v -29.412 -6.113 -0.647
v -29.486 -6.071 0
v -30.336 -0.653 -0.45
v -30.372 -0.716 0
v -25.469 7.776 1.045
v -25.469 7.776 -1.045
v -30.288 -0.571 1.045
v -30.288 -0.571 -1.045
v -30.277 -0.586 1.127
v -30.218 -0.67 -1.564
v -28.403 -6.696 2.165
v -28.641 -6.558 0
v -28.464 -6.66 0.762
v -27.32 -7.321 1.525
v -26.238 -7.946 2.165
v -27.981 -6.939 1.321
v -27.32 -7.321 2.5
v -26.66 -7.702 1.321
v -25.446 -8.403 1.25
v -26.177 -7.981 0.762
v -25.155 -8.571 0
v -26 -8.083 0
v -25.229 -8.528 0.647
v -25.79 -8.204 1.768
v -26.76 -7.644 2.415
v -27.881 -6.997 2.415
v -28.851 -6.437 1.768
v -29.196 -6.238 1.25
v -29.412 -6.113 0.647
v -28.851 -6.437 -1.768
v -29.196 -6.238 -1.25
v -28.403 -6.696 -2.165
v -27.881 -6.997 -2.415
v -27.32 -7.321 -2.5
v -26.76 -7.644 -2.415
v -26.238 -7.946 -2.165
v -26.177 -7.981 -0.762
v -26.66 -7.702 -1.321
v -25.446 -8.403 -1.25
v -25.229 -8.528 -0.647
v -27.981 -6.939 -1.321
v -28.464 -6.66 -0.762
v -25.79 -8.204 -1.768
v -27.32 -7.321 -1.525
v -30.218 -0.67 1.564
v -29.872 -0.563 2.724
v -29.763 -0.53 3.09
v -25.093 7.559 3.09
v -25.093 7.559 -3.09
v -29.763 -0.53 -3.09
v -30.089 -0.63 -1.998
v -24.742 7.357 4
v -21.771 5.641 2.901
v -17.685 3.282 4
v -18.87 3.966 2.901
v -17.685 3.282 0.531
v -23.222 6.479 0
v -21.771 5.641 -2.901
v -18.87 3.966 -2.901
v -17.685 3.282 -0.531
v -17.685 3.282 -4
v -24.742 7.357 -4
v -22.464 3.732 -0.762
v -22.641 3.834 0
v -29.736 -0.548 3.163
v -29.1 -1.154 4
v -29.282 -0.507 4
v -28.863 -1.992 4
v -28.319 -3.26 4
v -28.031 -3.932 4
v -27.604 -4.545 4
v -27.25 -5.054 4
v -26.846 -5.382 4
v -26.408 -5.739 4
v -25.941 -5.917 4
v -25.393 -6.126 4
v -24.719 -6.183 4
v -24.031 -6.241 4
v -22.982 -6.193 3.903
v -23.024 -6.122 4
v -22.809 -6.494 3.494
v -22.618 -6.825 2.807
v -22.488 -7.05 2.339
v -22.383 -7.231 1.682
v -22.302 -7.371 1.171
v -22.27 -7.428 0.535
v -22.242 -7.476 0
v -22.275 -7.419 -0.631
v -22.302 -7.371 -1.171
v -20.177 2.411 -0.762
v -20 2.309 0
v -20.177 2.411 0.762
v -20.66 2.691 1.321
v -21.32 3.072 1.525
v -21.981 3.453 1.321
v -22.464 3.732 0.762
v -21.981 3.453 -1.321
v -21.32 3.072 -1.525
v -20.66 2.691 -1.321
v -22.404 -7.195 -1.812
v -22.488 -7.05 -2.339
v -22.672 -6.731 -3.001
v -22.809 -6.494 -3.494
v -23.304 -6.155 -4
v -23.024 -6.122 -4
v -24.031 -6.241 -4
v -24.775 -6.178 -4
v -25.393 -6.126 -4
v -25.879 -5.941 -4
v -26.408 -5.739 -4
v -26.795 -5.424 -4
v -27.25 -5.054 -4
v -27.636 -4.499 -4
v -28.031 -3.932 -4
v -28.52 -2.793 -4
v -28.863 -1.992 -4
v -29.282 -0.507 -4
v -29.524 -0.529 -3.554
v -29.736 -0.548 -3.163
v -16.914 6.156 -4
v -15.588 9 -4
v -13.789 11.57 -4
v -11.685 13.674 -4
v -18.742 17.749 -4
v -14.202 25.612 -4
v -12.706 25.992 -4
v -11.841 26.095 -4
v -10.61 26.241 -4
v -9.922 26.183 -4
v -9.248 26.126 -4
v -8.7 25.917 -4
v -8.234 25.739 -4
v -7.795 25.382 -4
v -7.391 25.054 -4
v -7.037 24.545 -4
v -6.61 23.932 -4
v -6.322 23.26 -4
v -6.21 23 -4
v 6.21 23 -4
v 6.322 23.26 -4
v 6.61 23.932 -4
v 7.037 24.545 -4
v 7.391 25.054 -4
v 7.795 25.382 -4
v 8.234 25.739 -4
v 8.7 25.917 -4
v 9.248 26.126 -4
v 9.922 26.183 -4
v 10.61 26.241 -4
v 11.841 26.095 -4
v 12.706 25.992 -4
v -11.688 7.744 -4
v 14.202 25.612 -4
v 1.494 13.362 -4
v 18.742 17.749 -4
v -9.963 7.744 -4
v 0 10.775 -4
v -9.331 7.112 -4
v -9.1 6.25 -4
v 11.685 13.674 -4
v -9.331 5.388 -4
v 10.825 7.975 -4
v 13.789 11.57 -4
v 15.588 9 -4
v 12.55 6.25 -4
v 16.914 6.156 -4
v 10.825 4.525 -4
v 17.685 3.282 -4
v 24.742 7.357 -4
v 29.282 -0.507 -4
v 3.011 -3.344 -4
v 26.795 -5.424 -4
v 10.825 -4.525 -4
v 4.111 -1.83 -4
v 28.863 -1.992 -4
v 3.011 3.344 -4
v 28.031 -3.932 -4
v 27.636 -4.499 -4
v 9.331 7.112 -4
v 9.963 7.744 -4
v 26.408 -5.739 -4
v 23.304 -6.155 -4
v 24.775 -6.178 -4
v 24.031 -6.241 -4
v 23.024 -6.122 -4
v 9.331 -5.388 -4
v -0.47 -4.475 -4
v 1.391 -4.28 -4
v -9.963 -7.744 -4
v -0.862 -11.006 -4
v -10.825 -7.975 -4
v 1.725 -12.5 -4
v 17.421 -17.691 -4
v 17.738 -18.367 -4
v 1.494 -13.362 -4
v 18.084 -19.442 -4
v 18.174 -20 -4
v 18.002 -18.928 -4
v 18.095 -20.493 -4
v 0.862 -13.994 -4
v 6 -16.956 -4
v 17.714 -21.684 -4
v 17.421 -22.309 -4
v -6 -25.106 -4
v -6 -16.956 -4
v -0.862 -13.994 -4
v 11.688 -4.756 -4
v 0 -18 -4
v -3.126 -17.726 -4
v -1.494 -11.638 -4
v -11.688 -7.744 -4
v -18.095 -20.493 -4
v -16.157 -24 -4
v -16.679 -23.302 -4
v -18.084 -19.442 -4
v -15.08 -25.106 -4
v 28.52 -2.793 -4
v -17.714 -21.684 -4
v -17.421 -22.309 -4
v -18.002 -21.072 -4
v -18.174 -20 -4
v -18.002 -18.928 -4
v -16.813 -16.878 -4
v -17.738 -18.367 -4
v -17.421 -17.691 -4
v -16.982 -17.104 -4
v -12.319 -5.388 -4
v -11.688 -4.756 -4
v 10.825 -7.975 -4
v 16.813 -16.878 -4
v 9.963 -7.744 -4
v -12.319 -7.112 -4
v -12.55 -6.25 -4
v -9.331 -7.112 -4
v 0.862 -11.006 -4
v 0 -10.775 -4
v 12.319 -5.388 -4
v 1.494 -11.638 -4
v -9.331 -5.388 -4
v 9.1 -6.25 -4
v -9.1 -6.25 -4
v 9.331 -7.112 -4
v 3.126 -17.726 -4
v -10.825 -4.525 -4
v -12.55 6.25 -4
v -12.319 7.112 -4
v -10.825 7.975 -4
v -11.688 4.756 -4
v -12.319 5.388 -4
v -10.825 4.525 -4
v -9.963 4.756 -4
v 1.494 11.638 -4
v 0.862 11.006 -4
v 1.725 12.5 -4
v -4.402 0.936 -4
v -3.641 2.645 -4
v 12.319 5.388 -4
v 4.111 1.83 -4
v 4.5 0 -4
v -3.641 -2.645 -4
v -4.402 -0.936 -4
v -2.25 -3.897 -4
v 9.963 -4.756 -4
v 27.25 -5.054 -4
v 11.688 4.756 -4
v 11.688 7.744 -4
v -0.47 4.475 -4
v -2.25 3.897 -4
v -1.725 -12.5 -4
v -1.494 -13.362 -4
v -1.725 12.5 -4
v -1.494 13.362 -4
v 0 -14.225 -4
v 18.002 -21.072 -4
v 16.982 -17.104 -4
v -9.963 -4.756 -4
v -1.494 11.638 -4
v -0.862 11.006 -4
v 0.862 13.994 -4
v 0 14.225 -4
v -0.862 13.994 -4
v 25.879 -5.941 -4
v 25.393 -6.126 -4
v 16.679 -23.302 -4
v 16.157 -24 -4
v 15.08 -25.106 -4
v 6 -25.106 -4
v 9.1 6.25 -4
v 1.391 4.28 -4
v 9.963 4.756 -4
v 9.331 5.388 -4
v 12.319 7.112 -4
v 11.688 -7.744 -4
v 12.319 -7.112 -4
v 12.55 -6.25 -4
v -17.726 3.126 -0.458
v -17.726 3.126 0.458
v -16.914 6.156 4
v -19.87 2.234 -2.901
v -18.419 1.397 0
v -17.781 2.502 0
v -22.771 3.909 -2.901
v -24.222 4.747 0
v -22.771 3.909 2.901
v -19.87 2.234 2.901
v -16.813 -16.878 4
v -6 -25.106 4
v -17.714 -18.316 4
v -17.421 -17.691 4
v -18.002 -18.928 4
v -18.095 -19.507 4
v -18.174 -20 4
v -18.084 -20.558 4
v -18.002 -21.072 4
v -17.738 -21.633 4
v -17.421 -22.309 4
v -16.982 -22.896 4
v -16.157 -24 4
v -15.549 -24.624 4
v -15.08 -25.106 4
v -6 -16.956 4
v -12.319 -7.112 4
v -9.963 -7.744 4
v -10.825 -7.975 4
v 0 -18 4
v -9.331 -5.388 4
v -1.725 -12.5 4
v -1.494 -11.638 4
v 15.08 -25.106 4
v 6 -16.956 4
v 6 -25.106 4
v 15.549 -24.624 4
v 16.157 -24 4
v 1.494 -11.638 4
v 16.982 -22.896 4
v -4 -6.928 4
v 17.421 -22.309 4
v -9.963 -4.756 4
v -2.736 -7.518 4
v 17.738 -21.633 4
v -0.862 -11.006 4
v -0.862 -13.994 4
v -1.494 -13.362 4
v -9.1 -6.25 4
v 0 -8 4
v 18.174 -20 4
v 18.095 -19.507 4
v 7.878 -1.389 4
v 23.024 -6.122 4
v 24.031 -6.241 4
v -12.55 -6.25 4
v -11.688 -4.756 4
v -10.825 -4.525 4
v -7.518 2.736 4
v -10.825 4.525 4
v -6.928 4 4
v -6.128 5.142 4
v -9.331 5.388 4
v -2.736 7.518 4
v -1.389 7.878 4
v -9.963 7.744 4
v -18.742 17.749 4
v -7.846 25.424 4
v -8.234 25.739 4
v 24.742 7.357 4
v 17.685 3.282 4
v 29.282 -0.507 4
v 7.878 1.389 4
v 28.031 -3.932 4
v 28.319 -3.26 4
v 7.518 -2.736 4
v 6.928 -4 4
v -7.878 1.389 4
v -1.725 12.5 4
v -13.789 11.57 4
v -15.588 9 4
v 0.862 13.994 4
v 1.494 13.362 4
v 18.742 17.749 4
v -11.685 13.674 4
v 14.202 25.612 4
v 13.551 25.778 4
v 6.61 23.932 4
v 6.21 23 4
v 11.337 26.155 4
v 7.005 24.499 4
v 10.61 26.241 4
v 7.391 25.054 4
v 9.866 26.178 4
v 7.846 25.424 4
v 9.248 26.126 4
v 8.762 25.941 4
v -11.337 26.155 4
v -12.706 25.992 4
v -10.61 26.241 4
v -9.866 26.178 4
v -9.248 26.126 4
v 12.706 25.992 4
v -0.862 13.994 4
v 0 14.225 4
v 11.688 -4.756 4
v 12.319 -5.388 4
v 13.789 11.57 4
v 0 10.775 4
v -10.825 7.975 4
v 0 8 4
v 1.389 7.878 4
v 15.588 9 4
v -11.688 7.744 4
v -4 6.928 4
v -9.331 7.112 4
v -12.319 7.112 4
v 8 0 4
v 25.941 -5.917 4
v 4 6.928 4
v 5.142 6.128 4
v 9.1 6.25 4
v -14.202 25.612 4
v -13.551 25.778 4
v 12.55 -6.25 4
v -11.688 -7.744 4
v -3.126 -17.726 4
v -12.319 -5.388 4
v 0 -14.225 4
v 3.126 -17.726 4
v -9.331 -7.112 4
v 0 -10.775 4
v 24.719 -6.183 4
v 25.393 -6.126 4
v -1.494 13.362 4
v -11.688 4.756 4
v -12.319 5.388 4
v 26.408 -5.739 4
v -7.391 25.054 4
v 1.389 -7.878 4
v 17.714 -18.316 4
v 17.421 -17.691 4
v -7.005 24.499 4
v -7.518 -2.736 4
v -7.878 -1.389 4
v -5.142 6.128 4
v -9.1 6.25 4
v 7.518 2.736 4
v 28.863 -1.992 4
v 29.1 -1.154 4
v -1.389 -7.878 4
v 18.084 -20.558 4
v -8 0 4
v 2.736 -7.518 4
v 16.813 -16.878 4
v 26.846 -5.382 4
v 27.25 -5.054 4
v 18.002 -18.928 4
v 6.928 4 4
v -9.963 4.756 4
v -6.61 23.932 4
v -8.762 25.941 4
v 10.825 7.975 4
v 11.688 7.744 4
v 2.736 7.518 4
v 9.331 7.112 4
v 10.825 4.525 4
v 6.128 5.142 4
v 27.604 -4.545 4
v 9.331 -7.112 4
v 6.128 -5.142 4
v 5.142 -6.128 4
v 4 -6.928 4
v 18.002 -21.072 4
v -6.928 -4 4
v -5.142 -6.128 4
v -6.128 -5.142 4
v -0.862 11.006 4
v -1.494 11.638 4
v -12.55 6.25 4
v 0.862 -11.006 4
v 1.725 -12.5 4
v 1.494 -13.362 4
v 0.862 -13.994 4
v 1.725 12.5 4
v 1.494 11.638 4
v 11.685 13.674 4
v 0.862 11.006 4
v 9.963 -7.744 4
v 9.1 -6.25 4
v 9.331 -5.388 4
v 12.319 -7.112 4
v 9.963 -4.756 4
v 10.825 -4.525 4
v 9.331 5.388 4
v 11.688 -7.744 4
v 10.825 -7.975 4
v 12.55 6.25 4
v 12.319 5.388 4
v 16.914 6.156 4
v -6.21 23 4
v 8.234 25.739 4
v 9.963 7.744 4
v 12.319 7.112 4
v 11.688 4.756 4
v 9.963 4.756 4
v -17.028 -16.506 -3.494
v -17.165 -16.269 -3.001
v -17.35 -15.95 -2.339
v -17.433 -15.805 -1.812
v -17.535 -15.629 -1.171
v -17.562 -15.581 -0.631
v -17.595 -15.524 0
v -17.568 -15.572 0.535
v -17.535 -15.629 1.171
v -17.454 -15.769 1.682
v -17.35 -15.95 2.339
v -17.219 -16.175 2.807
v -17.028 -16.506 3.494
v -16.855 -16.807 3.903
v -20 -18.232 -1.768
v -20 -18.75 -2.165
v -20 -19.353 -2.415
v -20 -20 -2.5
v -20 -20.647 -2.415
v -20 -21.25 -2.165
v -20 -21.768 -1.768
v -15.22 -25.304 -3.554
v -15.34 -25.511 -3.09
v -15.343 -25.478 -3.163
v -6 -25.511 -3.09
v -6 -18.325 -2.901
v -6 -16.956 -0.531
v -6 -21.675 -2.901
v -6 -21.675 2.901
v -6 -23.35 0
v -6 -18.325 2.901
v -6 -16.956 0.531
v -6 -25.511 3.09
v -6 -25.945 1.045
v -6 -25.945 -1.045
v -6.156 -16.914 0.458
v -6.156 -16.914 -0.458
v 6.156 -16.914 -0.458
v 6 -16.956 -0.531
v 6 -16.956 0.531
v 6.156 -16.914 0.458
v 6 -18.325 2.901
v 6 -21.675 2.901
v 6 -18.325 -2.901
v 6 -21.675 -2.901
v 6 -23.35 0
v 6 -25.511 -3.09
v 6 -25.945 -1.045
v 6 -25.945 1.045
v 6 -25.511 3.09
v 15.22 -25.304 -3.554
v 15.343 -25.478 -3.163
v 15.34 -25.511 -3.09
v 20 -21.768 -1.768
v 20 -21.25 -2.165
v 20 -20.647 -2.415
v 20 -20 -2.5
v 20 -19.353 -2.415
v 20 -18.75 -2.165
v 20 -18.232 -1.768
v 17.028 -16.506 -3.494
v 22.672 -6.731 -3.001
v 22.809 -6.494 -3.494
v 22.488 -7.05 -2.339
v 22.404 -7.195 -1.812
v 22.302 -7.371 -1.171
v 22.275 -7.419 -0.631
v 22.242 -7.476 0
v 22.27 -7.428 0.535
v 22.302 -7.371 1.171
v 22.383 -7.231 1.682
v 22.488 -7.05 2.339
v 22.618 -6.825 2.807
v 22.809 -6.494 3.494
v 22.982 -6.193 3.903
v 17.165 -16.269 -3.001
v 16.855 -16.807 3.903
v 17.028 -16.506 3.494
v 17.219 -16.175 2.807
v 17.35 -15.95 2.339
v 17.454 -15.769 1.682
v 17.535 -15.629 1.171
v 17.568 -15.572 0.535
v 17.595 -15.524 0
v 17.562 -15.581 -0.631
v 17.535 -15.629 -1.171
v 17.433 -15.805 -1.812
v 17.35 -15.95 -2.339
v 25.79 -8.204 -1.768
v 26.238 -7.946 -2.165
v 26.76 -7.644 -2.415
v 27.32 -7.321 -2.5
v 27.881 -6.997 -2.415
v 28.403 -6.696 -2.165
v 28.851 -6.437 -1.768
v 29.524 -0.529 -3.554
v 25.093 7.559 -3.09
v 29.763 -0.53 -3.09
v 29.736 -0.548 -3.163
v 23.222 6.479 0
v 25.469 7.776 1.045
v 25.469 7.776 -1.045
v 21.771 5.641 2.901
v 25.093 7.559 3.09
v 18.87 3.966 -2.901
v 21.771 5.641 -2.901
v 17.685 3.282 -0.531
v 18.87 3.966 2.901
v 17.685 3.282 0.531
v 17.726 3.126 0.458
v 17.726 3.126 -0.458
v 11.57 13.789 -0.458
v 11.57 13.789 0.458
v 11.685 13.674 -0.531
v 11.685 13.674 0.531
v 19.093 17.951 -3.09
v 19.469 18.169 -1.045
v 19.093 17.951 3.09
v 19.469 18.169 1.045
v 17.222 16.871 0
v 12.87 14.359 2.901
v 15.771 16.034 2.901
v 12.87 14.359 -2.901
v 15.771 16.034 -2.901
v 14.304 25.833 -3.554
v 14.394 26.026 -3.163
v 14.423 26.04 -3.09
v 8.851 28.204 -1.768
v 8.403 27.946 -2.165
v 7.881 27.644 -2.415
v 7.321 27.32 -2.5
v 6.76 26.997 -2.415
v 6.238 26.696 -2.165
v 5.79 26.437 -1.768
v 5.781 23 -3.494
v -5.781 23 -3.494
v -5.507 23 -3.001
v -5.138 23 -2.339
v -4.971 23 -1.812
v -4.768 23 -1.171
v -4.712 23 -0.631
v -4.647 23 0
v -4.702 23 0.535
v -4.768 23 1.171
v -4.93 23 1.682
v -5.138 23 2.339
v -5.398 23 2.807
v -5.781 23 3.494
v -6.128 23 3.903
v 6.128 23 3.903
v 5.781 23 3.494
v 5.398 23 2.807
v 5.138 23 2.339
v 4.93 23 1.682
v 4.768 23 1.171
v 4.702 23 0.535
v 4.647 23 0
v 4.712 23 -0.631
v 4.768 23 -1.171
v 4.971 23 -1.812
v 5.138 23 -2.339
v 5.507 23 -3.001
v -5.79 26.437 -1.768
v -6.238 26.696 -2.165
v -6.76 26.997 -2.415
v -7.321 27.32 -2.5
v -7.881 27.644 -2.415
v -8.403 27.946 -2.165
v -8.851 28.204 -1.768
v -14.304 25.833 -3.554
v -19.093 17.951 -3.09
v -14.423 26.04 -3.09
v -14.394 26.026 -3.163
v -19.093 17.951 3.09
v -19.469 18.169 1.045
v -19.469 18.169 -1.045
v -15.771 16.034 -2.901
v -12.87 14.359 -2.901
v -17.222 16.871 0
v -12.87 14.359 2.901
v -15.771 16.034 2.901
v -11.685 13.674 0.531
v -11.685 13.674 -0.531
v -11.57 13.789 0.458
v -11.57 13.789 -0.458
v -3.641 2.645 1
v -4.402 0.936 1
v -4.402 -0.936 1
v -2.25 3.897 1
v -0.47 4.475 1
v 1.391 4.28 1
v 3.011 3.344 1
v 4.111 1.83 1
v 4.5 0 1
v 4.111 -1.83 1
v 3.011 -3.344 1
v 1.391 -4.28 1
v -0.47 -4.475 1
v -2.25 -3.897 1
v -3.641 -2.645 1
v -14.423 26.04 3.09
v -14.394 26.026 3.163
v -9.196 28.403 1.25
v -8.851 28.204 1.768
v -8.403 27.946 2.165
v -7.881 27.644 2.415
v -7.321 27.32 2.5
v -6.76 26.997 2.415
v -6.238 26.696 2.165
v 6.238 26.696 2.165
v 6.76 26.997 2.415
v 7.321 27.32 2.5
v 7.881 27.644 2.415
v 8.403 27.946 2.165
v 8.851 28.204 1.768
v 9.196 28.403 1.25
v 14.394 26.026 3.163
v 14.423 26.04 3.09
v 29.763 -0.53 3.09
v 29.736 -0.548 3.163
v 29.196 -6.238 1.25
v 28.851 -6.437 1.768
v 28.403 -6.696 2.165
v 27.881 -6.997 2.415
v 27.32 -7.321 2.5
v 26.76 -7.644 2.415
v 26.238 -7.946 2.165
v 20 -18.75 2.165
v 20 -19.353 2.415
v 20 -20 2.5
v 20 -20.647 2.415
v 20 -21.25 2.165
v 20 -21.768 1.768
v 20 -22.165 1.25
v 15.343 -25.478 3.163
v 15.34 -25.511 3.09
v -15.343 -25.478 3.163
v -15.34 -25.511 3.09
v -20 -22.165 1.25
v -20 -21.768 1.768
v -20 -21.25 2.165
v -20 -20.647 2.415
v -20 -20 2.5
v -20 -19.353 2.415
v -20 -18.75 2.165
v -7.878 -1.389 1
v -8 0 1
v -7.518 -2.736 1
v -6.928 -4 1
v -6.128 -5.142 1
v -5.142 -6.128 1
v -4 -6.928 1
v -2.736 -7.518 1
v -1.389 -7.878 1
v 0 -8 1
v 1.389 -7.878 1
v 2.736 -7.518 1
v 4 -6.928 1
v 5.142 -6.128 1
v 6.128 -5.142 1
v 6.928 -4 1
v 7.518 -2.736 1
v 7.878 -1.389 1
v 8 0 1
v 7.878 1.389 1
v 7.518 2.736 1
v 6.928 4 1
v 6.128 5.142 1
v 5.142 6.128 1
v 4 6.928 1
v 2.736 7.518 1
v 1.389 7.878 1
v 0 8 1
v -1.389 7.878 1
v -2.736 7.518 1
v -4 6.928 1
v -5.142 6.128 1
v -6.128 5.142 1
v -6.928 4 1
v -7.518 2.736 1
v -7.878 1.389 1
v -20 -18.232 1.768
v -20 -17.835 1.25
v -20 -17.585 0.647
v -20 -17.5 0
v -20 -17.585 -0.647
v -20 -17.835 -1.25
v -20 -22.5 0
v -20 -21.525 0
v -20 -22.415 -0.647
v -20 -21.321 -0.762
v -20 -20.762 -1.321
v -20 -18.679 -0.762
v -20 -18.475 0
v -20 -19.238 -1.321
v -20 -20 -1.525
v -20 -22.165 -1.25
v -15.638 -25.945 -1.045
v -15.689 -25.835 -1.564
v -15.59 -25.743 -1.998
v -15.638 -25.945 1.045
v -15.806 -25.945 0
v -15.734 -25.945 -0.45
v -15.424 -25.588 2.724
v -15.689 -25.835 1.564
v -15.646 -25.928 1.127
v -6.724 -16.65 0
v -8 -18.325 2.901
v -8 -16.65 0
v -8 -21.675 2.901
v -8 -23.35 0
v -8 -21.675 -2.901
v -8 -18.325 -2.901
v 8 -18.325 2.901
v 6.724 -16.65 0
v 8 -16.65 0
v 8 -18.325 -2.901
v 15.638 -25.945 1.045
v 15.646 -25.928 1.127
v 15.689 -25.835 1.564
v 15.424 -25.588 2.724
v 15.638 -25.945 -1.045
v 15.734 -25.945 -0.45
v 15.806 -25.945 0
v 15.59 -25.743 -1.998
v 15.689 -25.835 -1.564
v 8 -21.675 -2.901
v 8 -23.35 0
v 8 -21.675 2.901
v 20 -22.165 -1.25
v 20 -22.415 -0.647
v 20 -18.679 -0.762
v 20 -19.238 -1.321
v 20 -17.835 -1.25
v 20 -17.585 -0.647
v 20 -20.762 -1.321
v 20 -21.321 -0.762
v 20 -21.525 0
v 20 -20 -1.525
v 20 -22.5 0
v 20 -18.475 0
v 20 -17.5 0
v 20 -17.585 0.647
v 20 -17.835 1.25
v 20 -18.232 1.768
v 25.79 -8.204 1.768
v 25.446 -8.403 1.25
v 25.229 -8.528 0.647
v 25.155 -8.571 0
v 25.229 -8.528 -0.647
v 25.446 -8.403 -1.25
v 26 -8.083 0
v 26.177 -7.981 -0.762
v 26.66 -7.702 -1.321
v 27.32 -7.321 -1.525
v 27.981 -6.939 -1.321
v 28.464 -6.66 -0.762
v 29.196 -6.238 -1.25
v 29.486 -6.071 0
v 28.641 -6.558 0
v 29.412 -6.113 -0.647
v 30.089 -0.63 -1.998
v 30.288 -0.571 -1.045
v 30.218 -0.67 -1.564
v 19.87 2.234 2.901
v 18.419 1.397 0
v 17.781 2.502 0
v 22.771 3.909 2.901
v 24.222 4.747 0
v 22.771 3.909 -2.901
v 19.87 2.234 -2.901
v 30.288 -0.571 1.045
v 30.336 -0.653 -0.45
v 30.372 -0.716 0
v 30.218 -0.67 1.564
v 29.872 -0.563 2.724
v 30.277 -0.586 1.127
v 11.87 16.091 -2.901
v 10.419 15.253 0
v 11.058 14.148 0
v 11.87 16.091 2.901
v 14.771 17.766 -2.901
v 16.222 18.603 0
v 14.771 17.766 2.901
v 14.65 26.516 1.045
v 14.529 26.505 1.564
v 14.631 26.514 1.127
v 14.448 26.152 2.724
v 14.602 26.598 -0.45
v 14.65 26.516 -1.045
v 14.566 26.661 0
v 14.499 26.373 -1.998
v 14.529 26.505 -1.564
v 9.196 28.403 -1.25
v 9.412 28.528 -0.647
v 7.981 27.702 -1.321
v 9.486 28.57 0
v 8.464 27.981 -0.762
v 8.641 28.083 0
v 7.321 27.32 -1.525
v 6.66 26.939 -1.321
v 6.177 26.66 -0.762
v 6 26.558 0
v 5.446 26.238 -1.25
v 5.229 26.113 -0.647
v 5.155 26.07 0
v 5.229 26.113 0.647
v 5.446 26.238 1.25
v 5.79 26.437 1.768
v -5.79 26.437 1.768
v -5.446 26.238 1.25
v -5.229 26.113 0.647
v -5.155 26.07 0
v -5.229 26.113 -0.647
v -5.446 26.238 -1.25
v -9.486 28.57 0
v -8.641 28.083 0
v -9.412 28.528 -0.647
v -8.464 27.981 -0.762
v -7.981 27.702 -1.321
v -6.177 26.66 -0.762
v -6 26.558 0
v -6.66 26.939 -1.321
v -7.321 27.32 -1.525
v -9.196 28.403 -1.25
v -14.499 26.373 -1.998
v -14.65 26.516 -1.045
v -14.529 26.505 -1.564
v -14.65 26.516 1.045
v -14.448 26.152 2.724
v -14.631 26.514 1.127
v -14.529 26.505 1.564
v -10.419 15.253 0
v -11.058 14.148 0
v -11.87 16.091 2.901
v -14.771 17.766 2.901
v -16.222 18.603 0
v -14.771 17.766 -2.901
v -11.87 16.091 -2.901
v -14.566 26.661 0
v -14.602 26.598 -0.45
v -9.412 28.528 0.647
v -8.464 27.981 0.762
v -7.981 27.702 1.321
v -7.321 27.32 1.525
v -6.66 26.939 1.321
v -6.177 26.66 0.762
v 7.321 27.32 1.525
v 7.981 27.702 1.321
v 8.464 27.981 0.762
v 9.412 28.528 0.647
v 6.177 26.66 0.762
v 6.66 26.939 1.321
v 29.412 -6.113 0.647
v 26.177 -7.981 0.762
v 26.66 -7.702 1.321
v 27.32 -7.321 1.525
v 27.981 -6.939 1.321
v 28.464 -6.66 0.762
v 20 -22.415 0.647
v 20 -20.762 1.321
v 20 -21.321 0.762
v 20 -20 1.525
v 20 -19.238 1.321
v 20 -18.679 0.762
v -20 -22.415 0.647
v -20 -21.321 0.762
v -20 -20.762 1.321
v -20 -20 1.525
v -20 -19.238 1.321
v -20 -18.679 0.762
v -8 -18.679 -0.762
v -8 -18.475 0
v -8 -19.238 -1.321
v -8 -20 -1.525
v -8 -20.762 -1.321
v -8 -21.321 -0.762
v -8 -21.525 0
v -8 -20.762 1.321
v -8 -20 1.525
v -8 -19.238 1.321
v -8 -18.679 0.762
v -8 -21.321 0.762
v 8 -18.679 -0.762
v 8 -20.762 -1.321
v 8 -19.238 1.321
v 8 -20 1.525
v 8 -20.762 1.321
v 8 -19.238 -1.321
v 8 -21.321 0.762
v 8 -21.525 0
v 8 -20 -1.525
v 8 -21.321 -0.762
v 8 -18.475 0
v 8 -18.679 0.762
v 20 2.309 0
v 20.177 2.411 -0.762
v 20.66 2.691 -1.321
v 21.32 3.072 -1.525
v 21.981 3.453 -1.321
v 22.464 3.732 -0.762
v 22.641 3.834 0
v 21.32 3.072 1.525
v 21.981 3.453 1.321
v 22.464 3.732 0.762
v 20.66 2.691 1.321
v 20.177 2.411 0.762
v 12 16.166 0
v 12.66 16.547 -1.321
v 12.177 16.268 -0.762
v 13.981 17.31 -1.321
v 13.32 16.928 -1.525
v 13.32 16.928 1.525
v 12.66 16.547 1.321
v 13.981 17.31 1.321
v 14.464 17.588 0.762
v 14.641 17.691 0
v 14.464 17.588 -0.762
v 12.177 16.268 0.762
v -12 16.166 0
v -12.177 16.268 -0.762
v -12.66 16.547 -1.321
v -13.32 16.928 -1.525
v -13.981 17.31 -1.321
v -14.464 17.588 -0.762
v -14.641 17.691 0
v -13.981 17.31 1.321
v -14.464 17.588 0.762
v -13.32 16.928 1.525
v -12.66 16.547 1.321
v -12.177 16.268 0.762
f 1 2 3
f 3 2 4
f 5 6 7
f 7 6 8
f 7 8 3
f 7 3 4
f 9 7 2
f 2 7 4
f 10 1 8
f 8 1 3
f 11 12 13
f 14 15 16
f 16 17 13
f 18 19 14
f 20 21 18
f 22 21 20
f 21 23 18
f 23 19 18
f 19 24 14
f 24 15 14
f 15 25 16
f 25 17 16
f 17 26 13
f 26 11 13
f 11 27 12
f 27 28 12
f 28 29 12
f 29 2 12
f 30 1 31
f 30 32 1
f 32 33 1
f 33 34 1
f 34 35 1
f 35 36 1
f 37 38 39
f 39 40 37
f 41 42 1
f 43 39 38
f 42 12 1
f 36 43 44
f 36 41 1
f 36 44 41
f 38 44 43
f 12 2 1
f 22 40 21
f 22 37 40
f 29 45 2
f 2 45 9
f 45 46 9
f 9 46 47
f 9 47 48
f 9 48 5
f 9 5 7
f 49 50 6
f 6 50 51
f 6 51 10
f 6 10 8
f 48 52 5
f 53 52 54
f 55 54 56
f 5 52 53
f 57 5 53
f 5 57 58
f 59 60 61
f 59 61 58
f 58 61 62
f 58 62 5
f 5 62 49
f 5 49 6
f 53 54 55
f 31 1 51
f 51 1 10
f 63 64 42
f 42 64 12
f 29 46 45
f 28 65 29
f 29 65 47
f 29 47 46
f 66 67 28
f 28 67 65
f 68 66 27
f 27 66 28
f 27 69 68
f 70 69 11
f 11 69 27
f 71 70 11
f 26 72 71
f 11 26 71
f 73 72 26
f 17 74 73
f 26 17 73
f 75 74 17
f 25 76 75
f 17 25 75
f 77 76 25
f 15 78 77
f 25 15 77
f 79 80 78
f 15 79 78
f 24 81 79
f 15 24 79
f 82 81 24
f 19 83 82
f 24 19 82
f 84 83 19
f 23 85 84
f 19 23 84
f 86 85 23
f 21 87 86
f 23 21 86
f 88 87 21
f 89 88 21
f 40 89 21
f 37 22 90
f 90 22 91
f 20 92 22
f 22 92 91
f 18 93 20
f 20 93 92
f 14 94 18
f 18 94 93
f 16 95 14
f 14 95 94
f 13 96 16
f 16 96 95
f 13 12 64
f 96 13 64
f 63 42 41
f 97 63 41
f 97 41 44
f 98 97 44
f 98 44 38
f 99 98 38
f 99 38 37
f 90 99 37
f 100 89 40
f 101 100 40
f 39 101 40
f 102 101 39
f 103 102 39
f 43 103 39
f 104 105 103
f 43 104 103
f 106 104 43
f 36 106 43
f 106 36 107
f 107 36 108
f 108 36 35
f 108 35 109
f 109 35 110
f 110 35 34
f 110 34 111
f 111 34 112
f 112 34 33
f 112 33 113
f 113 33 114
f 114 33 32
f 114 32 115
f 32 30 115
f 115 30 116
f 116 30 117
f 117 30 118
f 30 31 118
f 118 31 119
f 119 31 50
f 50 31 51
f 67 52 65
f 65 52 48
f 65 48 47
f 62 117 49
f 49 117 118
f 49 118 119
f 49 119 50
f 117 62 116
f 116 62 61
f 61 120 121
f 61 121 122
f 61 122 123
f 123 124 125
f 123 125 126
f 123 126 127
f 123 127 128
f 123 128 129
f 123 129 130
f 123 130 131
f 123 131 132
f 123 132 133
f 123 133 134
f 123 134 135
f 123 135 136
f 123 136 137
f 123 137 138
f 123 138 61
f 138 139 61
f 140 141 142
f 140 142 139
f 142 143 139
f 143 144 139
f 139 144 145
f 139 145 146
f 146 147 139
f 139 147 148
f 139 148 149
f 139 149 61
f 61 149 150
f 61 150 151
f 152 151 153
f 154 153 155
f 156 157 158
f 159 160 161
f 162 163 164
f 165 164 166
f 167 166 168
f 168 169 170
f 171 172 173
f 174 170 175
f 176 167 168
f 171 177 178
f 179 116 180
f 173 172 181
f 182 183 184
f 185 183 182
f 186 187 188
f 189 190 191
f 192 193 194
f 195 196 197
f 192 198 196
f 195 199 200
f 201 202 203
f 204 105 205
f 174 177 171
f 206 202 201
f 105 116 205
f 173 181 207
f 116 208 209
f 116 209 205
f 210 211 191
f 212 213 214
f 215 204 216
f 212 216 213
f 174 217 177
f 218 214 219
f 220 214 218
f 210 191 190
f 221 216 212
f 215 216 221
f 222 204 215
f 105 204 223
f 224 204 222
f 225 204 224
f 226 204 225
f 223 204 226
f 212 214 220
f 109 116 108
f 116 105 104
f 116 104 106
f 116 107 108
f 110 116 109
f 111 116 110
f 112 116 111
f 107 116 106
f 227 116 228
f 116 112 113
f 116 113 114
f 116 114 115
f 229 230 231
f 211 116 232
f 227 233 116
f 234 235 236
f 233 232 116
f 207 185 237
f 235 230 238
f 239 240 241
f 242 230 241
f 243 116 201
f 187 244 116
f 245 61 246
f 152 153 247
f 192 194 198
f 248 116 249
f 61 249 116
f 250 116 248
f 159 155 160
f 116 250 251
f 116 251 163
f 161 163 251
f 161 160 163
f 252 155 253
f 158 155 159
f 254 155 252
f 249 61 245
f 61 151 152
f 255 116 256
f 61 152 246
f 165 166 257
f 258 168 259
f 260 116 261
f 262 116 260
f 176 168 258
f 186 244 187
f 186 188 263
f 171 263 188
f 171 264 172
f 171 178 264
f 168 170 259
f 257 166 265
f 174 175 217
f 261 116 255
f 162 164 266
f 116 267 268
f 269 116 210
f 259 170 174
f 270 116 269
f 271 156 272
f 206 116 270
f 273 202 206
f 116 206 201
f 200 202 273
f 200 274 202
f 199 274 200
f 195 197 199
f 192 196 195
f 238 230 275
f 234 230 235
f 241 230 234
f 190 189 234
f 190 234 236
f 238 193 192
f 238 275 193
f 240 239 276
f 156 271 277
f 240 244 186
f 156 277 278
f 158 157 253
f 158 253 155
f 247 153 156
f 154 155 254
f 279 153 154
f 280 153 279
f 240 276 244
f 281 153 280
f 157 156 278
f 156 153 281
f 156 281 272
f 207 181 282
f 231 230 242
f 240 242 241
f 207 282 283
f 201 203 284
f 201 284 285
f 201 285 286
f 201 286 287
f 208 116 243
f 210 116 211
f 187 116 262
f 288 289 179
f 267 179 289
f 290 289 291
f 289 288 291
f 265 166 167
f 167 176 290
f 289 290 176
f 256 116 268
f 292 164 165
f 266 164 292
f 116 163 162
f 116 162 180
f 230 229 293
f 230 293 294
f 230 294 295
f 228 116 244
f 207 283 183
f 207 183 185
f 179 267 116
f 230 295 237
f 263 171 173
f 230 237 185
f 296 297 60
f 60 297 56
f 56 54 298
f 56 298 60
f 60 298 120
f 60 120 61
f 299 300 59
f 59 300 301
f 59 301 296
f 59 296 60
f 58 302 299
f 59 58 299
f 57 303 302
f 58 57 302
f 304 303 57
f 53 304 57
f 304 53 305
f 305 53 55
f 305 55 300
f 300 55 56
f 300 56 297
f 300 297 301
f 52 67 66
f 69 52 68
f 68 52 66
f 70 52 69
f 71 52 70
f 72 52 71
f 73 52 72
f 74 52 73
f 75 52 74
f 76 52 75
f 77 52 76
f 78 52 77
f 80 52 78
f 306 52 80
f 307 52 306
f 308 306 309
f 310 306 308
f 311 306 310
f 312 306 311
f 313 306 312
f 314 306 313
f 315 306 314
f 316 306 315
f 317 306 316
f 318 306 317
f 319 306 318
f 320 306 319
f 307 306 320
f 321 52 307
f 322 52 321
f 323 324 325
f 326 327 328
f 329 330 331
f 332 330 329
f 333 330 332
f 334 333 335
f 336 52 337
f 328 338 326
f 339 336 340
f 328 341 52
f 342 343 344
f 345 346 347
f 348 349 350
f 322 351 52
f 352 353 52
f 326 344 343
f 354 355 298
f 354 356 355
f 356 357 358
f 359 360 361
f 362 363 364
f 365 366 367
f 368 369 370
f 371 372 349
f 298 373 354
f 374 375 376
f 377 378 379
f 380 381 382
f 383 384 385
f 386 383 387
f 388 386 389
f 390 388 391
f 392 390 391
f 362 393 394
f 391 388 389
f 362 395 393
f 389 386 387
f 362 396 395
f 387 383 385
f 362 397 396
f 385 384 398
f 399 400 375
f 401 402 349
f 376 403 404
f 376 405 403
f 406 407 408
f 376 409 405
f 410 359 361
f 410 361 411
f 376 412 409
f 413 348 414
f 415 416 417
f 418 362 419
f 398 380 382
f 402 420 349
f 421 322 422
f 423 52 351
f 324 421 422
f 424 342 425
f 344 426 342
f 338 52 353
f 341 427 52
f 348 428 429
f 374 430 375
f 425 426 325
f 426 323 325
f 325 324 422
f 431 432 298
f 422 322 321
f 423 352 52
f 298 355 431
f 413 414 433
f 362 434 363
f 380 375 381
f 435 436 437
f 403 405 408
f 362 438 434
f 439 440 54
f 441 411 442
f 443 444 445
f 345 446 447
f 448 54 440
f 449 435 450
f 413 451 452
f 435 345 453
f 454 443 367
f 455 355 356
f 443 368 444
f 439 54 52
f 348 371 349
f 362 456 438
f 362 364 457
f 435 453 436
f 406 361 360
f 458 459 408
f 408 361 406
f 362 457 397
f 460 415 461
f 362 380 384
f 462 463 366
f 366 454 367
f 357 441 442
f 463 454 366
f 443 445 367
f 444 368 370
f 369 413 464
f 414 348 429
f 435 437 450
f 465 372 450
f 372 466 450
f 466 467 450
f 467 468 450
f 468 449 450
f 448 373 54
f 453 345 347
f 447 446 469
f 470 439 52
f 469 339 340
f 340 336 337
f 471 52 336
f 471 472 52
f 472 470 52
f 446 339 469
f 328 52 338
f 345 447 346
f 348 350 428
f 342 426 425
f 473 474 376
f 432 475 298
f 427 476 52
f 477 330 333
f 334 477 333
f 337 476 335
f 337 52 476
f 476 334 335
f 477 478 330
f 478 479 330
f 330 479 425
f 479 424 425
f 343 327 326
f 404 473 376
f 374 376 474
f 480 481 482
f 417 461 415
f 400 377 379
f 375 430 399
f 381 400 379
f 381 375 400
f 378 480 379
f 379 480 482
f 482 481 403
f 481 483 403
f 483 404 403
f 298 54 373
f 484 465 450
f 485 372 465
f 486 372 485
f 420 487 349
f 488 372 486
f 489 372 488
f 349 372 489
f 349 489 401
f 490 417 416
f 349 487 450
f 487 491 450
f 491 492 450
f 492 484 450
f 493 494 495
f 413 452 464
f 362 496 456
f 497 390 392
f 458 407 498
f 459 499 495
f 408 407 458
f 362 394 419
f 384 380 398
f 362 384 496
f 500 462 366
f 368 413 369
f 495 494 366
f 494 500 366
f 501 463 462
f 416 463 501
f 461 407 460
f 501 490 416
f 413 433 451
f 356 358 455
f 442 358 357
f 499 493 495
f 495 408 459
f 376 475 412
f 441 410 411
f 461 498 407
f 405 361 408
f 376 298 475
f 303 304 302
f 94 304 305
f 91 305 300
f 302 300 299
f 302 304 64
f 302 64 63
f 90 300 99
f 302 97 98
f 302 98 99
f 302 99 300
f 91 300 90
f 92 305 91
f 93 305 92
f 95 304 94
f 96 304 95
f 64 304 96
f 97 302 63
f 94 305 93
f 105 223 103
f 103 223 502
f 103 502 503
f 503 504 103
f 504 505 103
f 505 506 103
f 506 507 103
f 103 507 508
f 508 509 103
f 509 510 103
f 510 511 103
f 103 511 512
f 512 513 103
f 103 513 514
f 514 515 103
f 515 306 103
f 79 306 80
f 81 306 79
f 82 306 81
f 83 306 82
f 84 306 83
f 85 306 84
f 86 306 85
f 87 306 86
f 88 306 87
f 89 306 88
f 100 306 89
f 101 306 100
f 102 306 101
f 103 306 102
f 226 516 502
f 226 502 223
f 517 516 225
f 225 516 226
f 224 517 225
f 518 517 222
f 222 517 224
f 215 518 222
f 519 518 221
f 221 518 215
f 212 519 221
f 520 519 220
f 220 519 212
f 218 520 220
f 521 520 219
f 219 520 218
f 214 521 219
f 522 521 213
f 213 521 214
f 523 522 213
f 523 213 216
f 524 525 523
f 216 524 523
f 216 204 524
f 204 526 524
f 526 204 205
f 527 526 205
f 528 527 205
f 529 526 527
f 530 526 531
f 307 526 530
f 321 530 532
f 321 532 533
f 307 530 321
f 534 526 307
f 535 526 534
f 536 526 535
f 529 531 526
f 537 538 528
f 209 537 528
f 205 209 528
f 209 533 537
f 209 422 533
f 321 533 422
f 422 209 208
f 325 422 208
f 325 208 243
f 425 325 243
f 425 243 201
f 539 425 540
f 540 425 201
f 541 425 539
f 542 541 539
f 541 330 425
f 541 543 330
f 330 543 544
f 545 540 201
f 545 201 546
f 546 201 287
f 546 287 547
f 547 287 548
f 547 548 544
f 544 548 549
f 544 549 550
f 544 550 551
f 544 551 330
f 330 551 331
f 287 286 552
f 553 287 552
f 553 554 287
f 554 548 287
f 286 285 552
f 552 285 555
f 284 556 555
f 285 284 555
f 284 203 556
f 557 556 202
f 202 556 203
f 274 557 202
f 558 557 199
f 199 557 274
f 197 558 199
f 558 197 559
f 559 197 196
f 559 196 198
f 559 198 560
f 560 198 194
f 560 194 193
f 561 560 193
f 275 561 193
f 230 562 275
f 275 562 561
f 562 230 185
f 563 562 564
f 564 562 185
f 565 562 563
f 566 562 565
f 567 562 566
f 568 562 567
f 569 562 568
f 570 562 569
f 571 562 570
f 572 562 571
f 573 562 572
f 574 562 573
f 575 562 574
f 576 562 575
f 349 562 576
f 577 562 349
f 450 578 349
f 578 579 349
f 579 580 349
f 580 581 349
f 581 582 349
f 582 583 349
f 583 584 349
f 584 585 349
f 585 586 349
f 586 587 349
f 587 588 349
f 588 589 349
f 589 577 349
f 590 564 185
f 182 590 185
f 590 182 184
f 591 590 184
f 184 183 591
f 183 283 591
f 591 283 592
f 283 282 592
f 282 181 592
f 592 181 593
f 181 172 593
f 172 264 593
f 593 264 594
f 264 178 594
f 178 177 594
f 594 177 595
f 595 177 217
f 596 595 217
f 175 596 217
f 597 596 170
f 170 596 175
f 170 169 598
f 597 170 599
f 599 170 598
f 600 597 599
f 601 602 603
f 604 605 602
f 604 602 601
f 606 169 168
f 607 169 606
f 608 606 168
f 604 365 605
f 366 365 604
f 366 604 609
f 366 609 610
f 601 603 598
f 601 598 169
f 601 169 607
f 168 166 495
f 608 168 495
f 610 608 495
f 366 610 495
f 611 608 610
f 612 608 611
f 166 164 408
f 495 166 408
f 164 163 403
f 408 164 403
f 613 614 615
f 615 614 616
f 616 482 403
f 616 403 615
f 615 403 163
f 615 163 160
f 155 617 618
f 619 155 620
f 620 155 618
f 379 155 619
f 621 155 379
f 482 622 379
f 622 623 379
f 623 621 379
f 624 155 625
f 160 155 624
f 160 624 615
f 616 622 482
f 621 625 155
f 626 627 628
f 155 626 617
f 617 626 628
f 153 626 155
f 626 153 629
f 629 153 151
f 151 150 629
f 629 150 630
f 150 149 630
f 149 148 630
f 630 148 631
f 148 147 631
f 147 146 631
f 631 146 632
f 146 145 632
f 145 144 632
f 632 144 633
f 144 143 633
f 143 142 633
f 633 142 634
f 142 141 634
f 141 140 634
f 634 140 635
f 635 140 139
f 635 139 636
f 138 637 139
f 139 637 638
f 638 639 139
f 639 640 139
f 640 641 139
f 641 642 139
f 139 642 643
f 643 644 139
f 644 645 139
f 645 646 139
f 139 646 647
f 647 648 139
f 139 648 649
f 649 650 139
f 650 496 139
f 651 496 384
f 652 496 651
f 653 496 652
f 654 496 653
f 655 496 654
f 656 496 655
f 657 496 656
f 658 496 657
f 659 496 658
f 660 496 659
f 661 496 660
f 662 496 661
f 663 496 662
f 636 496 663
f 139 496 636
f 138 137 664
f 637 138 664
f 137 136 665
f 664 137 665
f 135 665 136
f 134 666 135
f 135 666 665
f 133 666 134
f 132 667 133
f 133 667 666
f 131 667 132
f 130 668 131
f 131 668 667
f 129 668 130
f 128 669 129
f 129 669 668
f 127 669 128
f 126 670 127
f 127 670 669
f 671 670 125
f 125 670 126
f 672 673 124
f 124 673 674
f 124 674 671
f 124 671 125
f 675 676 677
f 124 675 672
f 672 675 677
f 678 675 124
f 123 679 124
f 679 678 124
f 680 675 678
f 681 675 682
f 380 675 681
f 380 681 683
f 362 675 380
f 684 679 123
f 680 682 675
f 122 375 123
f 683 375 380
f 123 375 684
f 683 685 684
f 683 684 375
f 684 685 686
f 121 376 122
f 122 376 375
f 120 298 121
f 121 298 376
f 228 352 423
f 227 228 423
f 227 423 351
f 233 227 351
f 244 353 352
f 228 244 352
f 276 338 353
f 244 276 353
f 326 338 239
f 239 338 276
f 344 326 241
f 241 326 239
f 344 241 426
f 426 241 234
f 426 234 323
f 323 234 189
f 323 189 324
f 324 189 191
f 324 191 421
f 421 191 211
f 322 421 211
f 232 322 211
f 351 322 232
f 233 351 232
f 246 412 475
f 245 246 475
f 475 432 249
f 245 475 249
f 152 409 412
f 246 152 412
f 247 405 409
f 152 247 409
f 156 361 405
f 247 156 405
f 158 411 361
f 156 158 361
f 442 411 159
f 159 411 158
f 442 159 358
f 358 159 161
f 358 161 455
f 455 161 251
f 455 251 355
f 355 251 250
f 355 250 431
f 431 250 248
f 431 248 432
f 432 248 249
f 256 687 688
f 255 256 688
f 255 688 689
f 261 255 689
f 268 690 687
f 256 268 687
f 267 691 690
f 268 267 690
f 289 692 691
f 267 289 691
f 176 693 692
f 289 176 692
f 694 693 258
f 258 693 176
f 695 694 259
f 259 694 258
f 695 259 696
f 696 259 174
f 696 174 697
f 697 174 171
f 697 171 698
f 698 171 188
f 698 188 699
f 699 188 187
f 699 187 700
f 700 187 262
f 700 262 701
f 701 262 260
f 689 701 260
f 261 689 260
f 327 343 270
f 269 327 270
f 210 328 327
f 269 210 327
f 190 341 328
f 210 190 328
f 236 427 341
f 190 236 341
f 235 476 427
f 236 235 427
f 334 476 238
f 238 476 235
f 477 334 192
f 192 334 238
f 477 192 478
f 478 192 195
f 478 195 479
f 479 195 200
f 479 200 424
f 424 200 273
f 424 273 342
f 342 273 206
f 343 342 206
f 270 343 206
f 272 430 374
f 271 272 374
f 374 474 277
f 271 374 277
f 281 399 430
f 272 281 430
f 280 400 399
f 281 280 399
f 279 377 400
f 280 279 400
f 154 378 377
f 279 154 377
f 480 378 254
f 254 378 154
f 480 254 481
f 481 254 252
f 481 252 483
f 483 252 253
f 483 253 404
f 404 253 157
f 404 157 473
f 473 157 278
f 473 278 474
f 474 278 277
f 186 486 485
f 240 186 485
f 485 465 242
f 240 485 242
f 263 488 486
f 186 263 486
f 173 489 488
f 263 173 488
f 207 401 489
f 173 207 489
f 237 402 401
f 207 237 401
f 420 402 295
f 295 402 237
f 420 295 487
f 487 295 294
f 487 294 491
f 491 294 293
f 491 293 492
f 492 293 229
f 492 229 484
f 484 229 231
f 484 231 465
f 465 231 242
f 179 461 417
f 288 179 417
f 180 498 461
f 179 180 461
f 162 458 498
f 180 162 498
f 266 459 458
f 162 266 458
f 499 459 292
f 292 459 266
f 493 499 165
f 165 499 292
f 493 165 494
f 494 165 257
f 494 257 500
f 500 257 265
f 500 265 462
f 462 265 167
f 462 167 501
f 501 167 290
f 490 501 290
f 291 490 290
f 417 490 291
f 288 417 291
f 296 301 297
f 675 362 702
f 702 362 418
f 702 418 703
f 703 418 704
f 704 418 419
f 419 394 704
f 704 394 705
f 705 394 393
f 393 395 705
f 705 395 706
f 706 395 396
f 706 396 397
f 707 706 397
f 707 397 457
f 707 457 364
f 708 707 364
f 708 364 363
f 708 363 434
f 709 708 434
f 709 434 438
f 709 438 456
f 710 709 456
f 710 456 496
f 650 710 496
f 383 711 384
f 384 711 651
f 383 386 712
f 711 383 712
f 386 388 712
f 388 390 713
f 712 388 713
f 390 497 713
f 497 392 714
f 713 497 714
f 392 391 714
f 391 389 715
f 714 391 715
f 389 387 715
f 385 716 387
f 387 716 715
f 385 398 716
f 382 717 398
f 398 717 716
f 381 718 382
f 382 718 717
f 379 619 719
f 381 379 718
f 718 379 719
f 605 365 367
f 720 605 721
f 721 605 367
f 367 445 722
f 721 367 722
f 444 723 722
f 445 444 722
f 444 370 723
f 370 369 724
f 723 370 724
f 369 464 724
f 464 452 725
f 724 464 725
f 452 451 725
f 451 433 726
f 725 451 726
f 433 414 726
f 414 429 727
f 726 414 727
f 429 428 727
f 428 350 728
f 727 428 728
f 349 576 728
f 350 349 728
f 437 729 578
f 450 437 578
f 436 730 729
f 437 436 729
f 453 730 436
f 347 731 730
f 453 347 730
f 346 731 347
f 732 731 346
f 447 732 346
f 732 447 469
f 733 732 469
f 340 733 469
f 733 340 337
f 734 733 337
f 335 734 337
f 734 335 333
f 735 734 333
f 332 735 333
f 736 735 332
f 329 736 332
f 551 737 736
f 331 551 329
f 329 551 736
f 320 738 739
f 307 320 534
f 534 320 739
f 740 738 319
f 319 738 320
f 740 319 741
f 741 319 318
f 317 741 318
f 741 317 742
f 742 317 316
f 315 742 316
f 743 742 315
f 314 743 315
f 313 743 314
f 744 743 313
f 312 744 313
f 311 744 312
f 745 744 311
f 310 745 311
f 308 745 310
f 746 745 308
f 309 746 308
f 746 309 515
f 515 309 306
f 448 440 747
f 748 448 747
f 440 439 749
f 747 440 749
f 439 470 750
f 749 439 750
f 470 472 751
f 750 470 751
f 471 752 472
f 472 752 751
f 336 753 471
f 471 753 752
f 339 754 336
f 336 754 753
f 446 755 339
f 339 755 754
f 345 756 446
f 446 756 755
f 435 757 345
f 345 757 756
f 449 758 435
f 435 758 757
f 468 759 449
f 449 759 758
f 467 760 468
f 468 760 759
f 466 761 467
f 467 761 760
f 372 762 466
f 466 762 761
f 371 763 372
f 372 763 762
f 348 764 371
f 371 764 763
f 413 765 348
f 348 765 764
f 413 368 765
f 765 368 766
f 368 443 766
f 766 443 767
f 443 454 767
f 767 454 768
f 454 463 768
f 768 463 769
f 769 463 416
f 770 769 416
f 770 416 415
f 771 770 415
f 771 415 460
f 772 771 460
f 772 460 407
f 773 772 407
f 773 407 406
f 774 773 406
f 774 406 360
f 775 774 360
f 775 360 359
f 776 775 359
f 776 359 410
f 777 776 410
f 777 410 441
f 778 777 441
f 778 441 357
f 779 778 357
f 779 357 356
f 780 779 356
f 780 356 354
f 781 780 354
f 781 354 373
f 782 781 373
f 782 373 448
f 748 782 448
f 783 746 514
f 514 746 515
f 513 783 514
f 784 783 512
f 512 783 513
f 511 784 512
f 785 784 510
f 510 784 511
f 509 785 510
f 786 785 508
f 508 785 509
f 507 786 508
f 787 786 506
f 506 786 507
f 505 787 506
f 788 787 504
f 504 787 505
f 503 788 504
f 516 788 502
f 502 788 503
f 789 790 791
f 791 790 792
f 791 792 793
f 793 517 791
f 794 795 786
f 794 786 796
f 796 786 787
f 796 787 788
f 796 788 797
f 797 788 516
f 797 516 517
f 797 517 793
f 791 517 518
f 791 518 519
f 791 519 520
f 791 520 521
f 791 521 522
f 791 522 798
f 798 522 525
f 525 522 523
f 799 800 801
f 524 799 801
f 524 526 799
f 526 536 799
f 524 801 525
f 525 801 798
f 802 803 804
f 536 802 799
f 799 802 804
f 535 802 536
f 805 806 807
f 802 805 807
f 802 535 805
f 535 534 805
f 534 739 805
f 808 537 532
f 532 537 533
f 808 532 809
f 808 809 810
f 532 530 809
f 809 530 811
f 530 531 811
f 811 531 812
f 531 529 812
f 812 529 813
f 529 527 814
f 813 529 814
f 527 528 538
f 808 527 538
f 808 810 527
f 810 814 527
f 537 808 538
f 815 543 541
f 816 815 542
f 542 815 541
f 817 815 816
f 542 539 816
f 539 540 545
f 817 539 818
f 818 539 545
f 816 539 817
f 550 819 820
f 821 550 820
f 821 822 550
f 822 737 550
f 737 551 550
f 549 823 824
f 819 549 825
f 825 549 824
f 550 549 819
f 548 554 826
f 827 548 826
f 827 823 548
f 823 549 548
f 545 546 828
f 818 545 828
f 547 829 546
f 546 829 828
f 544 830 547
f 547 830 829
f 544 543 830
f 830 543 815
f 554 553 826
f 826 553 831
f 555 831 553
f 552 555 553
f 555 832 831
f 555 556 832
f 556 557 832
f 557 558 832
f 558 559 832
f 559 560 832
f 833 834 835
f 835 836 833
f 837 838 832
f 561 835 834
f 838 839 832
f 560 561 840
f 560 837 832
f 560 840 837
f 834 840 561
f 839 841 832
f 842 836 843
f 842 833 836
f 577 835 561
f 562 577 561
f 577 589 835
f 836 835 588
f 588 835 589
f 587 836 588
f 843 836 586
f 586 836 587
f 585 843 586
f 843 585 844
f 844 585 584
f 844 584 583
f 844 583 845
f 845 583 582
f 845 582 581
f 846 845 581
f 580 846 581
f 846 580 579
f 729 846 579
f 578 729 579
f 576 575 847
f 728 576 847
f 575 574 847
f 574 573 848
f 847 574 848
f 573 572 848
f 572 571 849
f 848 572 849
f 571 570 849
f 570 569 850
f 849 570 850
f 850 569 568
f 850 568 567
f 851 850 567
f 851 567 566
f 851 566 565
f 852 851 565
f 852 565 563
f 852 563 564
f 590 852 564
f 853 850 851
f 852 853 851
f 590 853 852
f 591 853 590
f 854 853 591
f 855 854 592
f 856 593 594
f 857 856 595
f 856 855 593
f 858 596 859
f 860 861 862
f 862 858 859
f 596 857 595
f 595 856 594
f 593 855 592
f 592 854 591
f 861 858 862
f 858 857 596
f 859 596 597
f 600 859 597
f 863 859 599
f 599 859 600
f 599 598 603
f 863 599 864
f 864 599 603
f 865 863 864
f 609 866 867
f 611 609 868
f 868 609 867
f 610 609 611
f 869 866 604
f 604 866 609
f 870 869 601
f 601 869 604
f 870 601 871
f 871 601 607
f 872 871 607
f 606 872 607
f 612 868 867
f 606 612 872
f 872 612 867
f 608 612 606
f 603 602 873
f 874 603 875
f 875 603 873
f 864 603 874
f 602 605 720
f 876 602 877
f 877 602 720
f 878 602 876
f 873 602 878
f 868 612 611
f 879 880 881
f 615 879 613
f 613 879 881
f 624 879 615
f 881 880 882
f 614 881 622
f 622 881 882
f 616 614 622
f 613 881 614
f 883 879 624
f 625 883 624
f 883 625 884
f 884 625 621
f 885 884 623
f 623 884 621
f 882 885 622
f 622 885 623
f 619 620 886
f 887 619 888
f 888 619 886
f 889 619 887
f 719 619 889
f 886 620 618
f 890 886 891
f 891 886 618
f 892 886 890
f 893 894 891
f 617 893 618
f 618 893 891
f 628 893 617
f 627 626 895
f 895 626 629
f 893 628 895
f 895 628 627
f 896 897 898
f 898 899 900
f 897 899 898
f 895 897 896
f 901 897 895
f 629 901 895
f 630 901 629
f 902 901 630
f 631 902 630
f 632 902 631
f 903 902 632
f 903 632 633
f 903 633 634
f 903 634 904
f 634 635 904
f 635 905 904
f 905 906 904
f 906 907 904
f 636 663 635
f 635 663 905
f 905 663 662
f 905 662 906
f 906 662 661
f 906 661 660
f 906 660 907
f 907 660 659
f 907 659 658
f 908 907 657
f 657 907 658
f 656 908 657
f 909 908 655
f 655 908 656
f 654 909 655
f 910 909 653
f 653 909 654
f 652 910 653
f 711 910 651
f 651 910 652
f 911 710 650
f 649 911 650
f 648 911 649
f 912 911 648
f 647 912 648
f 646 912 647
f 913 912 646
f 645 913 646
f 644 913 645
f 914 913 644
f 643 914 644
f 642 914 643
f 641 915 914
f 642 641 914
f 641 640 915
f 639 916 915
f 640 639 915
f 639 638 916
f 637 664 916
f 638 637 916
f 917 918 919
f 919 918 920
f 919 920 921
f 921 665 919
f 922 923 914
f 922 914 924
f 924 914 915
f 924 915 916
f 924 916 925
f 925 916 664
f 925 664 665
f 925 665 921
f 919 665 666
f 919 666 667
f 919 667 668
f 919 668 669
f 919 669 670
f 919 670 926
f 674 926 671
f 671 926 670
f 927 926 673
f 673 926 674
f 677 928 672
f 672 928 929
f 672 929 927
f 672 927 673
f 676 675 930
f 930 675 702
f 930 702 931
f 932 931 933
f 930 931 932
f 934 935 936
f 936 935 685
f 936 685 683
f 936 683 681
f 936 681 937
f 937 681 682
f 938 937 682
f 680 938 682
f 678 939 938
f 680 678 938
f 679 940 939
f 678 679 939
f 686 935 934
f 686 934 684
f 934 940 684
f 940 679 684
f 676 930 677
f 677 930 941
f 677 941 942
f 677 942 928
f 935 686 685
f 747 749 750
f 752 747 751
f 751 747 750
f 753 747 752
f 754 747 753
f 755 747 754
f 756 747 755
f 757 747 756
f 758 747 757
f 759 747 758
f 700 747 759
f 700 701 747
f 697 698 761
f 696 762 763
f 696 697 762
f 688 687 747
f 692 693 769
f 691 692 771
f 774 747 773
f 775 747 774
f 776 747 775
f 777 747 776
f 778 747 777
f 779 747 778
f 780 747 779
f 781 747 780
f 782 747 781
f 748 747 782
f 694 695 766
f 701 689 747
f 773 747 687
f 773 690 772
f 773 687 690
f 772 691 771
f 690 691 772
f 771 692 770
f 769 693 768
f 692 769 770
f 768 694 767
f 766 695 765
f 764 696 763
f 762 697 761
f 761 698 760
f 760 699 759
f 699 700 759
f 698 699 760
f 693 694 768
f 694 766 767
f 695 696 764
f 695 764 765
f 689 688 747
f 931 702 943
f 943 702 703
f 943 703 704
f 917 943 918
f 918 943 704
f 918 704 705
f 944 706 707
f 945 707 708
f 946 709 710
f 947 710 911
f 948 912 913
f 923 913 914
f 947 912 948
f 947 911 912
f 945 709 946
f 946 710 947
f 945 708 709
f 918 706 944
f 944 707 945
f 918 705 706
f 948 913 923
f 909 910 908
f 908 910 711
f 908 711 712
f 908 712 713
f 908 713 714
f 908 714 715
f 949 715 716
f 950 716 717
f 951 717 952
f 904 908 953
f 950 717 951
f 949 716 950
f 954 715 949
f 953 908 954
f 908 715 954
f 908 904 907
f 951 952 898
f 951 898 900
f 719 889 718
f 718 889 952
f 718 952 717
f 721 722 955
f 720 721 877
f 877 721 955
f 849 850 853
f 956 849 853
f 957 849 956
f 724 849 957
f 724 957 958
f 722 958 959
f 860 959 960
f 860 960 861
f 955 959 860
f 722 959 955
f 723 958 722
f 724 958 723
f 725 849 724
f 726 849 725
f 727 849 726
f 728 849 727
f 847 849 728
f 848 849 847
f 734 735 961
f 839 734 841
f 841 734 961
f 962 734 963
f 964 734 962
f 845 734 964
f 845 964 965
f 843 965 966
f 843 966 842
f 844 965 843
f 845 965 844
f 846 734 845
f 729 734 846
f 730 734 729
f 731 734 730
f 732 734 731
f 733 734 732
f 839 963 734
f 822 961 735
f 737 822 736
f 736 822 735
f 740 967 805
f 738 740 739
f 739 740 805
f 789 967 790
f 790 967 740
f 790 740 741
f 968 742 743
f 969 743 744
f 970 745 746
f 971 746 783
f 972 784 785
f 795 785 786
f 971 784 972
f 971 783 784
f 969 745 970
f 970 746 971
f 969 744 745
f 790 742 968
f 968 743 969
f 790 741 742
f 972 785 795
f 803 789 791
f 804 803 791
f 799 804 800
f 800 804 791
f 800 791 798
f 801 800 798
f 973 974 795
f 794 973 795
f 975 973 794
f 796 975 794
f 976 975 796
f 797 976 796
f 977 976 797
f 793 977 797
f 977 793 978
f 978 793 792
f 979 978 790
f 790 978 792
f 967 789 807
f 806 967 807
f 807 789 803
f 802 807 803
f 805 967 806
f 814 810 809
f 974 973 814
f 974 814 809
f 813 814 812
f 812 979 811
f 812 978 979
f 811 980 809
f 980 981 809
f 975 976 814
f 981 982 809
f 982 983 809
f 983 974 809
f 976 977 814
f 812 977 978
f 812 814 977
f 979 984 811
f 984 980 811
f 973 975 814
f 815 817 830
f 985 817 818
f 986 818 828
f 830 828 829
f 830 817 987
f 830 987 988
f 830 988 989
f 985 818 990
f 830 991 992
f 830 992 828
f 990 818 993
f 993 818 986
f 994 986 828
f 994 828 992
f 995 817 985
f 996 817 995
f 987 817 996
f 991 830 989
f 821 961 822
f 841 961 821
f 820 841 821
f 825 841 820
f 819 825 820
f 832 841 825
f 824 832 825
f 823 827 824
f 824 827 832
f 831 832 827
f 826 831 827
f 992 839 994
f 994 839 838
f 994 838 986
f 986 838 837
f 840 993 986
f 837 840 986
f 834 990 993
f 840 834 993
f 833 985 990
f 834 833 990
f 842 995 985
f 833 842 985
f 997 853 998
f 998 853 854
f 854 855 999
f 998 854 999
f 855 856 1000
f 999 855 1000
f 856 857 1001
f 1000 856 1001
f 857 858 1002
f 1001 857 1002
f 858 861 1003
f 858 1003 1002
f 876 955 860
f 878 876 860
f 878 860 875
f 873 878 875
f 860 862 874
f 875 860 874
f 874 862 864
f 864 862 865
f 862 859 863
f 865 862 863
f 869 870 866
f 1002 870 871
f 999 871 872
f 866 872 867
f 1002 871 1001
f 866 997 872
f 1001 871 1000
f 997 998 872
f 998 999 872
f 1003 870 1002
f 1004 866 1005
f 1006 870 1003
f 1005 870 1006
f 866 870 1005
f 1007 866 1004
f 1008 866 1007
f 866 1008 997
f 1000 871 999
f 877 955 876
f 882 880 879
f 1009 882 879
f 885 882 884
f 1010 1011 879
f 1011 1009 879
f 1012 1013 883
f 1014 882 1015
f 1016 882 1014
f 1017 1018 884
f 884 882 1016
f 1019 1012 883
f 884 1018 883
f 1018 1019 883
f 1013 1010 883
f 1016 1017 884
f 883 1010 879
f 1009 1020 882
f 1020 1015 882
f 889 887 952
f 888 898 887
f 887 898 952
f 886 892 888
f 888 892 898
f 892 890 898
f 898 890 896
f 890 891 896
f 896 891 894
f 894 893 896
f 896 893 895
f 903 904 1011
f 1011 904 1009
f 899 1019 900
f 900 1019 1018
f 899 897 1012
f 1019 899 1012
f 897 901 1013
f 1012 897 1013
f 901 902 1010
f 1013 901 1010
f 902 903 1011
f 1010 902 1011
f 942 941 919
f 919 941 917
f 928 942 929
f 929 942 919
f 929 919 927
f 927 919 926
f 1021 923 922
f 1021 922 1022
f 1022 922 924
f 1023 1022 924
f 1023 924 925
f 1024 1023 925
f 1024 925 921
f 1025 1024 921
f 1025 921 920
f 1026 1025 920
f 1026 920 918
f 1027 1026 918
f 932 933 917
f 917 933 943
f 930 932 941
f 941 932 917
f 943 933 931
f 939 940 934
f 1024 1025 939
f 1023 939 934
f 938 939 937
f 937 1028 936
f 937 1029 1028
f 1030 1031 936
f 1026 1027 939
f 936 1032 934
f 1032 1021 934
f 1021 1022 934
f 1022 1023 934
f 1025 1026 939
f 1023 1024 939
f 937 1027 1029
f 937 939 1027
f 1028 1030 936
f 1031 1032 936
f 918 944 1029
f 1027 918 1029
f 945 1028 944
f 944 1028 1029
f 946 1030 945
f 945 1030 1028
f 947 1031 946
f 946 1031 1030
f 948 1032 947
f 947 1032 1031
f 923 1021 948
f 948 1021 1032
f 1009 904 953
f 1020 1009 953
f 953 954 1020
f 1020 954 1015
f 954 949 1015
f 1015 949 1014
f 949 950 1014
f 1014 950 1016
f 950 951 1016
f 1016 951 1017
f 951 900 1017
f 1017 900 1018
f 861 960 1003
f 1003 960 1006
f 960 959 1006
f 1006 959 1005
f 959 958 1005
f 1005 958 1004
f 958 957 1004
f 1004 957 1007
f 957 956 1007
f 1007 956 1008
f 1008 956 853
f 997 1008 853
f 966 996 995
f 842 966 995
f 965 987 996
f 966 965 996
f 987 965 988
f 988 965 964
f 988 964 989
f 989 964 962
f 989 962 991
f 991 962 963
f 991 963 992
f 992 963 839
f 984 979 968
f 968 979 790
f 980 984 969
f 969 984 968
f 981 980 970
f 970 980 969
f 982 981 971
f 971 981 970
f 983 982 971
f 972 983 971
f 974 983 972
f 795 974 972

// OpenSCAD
// file: configuration.scad
// Increase this if your slicer or printer make holes too tight.
extra_radius = 0.1;

// OD = outside diameter, corner to corner.
m3_nut_od = 6.1;
m3_nut_radius = m3_nut_od/2 + 0.2 + extra_radius;

// Major diameter of metric 3mm thread.
m3_major = 2.85;
m3_radius = m3_major/2 + extra_radius;
m3_wide_radius = m3_major/2 + extra_radius + 0.2;

// NEMA17 stepper motors.
motor_shaft_diameter = 5;
motor_shaft_radius = motor_shaft_diameter/2 + extra_radius;

// Frame brackets.
thickness = 3.6;
// main file
include <configuration.scad>;

separation = 40;  // Distance between ball joint mounting faces.
offset = 20;  // Same as DELTA_EFFECTOR_OFFSET in Marlin.
mount_radius = 12.5;  // M3 hotend mounting screws, standard would be 25.
inside_radius = 8;  // Hole for the hotend (J-Head diameter is 16mm).
push_fit_radius = 4.5;  // Brass fitting for bowden tube.
push_fit_height = 5;  // Length of brass threaded into printed plastic.
height = 8;
cone_r1 = 2.5;
cone_r2 = 14;

difference() {
  union() {
    cylinder(r=offset-2, h=height, center=true, $fn=36);
    for (a = [60:120:359]) rotate([0, 0, a]) {
      rotate([0, 0, 30]) translate([offset-2, 0, 0])
        cube([10, 13, height], center=true);
      for (s = [-1, 1]) scale([s, 1, 1]) {
        translate([0, offset, 0]) difference() {
          intersection() {
            cube([separation, 40, height], center=true);
            translate([0, -4, 0]) rotate([0, 90, 0])
              cylinder(r=10, h=separation, center=true);
            translate([separation/2-7, 0, 0]) rotate([0, 90, 0])
              cylinder(r1=cone_r2, r2=cone_r1, h=14, center=true, $fn=24);
          }
        rotate([0, 90, 0])
          cylinder(r=m3_radius, h=separation+1, center=true, $fn=12);
        rotate([90, 0, 90])
          cylinder(r=m3_nut_radius, h=separation-24, center=true, $fn=6);
        }
      }
    }
  }
  translate([0, 0, push_fit_height-height/2])
    cylinder(r=inside_radius, h=height, $fn=36);
  cylinder(r=push_fit_radius, h=height+1, center=true);
  for (a = [0:60:359]) rotate([0, 0, a]) {
    translate([0, mount_radius, 0])
      cylinder(r=m3_wide_radius, h=2*height, center=true, $fn=12);
  }
}
